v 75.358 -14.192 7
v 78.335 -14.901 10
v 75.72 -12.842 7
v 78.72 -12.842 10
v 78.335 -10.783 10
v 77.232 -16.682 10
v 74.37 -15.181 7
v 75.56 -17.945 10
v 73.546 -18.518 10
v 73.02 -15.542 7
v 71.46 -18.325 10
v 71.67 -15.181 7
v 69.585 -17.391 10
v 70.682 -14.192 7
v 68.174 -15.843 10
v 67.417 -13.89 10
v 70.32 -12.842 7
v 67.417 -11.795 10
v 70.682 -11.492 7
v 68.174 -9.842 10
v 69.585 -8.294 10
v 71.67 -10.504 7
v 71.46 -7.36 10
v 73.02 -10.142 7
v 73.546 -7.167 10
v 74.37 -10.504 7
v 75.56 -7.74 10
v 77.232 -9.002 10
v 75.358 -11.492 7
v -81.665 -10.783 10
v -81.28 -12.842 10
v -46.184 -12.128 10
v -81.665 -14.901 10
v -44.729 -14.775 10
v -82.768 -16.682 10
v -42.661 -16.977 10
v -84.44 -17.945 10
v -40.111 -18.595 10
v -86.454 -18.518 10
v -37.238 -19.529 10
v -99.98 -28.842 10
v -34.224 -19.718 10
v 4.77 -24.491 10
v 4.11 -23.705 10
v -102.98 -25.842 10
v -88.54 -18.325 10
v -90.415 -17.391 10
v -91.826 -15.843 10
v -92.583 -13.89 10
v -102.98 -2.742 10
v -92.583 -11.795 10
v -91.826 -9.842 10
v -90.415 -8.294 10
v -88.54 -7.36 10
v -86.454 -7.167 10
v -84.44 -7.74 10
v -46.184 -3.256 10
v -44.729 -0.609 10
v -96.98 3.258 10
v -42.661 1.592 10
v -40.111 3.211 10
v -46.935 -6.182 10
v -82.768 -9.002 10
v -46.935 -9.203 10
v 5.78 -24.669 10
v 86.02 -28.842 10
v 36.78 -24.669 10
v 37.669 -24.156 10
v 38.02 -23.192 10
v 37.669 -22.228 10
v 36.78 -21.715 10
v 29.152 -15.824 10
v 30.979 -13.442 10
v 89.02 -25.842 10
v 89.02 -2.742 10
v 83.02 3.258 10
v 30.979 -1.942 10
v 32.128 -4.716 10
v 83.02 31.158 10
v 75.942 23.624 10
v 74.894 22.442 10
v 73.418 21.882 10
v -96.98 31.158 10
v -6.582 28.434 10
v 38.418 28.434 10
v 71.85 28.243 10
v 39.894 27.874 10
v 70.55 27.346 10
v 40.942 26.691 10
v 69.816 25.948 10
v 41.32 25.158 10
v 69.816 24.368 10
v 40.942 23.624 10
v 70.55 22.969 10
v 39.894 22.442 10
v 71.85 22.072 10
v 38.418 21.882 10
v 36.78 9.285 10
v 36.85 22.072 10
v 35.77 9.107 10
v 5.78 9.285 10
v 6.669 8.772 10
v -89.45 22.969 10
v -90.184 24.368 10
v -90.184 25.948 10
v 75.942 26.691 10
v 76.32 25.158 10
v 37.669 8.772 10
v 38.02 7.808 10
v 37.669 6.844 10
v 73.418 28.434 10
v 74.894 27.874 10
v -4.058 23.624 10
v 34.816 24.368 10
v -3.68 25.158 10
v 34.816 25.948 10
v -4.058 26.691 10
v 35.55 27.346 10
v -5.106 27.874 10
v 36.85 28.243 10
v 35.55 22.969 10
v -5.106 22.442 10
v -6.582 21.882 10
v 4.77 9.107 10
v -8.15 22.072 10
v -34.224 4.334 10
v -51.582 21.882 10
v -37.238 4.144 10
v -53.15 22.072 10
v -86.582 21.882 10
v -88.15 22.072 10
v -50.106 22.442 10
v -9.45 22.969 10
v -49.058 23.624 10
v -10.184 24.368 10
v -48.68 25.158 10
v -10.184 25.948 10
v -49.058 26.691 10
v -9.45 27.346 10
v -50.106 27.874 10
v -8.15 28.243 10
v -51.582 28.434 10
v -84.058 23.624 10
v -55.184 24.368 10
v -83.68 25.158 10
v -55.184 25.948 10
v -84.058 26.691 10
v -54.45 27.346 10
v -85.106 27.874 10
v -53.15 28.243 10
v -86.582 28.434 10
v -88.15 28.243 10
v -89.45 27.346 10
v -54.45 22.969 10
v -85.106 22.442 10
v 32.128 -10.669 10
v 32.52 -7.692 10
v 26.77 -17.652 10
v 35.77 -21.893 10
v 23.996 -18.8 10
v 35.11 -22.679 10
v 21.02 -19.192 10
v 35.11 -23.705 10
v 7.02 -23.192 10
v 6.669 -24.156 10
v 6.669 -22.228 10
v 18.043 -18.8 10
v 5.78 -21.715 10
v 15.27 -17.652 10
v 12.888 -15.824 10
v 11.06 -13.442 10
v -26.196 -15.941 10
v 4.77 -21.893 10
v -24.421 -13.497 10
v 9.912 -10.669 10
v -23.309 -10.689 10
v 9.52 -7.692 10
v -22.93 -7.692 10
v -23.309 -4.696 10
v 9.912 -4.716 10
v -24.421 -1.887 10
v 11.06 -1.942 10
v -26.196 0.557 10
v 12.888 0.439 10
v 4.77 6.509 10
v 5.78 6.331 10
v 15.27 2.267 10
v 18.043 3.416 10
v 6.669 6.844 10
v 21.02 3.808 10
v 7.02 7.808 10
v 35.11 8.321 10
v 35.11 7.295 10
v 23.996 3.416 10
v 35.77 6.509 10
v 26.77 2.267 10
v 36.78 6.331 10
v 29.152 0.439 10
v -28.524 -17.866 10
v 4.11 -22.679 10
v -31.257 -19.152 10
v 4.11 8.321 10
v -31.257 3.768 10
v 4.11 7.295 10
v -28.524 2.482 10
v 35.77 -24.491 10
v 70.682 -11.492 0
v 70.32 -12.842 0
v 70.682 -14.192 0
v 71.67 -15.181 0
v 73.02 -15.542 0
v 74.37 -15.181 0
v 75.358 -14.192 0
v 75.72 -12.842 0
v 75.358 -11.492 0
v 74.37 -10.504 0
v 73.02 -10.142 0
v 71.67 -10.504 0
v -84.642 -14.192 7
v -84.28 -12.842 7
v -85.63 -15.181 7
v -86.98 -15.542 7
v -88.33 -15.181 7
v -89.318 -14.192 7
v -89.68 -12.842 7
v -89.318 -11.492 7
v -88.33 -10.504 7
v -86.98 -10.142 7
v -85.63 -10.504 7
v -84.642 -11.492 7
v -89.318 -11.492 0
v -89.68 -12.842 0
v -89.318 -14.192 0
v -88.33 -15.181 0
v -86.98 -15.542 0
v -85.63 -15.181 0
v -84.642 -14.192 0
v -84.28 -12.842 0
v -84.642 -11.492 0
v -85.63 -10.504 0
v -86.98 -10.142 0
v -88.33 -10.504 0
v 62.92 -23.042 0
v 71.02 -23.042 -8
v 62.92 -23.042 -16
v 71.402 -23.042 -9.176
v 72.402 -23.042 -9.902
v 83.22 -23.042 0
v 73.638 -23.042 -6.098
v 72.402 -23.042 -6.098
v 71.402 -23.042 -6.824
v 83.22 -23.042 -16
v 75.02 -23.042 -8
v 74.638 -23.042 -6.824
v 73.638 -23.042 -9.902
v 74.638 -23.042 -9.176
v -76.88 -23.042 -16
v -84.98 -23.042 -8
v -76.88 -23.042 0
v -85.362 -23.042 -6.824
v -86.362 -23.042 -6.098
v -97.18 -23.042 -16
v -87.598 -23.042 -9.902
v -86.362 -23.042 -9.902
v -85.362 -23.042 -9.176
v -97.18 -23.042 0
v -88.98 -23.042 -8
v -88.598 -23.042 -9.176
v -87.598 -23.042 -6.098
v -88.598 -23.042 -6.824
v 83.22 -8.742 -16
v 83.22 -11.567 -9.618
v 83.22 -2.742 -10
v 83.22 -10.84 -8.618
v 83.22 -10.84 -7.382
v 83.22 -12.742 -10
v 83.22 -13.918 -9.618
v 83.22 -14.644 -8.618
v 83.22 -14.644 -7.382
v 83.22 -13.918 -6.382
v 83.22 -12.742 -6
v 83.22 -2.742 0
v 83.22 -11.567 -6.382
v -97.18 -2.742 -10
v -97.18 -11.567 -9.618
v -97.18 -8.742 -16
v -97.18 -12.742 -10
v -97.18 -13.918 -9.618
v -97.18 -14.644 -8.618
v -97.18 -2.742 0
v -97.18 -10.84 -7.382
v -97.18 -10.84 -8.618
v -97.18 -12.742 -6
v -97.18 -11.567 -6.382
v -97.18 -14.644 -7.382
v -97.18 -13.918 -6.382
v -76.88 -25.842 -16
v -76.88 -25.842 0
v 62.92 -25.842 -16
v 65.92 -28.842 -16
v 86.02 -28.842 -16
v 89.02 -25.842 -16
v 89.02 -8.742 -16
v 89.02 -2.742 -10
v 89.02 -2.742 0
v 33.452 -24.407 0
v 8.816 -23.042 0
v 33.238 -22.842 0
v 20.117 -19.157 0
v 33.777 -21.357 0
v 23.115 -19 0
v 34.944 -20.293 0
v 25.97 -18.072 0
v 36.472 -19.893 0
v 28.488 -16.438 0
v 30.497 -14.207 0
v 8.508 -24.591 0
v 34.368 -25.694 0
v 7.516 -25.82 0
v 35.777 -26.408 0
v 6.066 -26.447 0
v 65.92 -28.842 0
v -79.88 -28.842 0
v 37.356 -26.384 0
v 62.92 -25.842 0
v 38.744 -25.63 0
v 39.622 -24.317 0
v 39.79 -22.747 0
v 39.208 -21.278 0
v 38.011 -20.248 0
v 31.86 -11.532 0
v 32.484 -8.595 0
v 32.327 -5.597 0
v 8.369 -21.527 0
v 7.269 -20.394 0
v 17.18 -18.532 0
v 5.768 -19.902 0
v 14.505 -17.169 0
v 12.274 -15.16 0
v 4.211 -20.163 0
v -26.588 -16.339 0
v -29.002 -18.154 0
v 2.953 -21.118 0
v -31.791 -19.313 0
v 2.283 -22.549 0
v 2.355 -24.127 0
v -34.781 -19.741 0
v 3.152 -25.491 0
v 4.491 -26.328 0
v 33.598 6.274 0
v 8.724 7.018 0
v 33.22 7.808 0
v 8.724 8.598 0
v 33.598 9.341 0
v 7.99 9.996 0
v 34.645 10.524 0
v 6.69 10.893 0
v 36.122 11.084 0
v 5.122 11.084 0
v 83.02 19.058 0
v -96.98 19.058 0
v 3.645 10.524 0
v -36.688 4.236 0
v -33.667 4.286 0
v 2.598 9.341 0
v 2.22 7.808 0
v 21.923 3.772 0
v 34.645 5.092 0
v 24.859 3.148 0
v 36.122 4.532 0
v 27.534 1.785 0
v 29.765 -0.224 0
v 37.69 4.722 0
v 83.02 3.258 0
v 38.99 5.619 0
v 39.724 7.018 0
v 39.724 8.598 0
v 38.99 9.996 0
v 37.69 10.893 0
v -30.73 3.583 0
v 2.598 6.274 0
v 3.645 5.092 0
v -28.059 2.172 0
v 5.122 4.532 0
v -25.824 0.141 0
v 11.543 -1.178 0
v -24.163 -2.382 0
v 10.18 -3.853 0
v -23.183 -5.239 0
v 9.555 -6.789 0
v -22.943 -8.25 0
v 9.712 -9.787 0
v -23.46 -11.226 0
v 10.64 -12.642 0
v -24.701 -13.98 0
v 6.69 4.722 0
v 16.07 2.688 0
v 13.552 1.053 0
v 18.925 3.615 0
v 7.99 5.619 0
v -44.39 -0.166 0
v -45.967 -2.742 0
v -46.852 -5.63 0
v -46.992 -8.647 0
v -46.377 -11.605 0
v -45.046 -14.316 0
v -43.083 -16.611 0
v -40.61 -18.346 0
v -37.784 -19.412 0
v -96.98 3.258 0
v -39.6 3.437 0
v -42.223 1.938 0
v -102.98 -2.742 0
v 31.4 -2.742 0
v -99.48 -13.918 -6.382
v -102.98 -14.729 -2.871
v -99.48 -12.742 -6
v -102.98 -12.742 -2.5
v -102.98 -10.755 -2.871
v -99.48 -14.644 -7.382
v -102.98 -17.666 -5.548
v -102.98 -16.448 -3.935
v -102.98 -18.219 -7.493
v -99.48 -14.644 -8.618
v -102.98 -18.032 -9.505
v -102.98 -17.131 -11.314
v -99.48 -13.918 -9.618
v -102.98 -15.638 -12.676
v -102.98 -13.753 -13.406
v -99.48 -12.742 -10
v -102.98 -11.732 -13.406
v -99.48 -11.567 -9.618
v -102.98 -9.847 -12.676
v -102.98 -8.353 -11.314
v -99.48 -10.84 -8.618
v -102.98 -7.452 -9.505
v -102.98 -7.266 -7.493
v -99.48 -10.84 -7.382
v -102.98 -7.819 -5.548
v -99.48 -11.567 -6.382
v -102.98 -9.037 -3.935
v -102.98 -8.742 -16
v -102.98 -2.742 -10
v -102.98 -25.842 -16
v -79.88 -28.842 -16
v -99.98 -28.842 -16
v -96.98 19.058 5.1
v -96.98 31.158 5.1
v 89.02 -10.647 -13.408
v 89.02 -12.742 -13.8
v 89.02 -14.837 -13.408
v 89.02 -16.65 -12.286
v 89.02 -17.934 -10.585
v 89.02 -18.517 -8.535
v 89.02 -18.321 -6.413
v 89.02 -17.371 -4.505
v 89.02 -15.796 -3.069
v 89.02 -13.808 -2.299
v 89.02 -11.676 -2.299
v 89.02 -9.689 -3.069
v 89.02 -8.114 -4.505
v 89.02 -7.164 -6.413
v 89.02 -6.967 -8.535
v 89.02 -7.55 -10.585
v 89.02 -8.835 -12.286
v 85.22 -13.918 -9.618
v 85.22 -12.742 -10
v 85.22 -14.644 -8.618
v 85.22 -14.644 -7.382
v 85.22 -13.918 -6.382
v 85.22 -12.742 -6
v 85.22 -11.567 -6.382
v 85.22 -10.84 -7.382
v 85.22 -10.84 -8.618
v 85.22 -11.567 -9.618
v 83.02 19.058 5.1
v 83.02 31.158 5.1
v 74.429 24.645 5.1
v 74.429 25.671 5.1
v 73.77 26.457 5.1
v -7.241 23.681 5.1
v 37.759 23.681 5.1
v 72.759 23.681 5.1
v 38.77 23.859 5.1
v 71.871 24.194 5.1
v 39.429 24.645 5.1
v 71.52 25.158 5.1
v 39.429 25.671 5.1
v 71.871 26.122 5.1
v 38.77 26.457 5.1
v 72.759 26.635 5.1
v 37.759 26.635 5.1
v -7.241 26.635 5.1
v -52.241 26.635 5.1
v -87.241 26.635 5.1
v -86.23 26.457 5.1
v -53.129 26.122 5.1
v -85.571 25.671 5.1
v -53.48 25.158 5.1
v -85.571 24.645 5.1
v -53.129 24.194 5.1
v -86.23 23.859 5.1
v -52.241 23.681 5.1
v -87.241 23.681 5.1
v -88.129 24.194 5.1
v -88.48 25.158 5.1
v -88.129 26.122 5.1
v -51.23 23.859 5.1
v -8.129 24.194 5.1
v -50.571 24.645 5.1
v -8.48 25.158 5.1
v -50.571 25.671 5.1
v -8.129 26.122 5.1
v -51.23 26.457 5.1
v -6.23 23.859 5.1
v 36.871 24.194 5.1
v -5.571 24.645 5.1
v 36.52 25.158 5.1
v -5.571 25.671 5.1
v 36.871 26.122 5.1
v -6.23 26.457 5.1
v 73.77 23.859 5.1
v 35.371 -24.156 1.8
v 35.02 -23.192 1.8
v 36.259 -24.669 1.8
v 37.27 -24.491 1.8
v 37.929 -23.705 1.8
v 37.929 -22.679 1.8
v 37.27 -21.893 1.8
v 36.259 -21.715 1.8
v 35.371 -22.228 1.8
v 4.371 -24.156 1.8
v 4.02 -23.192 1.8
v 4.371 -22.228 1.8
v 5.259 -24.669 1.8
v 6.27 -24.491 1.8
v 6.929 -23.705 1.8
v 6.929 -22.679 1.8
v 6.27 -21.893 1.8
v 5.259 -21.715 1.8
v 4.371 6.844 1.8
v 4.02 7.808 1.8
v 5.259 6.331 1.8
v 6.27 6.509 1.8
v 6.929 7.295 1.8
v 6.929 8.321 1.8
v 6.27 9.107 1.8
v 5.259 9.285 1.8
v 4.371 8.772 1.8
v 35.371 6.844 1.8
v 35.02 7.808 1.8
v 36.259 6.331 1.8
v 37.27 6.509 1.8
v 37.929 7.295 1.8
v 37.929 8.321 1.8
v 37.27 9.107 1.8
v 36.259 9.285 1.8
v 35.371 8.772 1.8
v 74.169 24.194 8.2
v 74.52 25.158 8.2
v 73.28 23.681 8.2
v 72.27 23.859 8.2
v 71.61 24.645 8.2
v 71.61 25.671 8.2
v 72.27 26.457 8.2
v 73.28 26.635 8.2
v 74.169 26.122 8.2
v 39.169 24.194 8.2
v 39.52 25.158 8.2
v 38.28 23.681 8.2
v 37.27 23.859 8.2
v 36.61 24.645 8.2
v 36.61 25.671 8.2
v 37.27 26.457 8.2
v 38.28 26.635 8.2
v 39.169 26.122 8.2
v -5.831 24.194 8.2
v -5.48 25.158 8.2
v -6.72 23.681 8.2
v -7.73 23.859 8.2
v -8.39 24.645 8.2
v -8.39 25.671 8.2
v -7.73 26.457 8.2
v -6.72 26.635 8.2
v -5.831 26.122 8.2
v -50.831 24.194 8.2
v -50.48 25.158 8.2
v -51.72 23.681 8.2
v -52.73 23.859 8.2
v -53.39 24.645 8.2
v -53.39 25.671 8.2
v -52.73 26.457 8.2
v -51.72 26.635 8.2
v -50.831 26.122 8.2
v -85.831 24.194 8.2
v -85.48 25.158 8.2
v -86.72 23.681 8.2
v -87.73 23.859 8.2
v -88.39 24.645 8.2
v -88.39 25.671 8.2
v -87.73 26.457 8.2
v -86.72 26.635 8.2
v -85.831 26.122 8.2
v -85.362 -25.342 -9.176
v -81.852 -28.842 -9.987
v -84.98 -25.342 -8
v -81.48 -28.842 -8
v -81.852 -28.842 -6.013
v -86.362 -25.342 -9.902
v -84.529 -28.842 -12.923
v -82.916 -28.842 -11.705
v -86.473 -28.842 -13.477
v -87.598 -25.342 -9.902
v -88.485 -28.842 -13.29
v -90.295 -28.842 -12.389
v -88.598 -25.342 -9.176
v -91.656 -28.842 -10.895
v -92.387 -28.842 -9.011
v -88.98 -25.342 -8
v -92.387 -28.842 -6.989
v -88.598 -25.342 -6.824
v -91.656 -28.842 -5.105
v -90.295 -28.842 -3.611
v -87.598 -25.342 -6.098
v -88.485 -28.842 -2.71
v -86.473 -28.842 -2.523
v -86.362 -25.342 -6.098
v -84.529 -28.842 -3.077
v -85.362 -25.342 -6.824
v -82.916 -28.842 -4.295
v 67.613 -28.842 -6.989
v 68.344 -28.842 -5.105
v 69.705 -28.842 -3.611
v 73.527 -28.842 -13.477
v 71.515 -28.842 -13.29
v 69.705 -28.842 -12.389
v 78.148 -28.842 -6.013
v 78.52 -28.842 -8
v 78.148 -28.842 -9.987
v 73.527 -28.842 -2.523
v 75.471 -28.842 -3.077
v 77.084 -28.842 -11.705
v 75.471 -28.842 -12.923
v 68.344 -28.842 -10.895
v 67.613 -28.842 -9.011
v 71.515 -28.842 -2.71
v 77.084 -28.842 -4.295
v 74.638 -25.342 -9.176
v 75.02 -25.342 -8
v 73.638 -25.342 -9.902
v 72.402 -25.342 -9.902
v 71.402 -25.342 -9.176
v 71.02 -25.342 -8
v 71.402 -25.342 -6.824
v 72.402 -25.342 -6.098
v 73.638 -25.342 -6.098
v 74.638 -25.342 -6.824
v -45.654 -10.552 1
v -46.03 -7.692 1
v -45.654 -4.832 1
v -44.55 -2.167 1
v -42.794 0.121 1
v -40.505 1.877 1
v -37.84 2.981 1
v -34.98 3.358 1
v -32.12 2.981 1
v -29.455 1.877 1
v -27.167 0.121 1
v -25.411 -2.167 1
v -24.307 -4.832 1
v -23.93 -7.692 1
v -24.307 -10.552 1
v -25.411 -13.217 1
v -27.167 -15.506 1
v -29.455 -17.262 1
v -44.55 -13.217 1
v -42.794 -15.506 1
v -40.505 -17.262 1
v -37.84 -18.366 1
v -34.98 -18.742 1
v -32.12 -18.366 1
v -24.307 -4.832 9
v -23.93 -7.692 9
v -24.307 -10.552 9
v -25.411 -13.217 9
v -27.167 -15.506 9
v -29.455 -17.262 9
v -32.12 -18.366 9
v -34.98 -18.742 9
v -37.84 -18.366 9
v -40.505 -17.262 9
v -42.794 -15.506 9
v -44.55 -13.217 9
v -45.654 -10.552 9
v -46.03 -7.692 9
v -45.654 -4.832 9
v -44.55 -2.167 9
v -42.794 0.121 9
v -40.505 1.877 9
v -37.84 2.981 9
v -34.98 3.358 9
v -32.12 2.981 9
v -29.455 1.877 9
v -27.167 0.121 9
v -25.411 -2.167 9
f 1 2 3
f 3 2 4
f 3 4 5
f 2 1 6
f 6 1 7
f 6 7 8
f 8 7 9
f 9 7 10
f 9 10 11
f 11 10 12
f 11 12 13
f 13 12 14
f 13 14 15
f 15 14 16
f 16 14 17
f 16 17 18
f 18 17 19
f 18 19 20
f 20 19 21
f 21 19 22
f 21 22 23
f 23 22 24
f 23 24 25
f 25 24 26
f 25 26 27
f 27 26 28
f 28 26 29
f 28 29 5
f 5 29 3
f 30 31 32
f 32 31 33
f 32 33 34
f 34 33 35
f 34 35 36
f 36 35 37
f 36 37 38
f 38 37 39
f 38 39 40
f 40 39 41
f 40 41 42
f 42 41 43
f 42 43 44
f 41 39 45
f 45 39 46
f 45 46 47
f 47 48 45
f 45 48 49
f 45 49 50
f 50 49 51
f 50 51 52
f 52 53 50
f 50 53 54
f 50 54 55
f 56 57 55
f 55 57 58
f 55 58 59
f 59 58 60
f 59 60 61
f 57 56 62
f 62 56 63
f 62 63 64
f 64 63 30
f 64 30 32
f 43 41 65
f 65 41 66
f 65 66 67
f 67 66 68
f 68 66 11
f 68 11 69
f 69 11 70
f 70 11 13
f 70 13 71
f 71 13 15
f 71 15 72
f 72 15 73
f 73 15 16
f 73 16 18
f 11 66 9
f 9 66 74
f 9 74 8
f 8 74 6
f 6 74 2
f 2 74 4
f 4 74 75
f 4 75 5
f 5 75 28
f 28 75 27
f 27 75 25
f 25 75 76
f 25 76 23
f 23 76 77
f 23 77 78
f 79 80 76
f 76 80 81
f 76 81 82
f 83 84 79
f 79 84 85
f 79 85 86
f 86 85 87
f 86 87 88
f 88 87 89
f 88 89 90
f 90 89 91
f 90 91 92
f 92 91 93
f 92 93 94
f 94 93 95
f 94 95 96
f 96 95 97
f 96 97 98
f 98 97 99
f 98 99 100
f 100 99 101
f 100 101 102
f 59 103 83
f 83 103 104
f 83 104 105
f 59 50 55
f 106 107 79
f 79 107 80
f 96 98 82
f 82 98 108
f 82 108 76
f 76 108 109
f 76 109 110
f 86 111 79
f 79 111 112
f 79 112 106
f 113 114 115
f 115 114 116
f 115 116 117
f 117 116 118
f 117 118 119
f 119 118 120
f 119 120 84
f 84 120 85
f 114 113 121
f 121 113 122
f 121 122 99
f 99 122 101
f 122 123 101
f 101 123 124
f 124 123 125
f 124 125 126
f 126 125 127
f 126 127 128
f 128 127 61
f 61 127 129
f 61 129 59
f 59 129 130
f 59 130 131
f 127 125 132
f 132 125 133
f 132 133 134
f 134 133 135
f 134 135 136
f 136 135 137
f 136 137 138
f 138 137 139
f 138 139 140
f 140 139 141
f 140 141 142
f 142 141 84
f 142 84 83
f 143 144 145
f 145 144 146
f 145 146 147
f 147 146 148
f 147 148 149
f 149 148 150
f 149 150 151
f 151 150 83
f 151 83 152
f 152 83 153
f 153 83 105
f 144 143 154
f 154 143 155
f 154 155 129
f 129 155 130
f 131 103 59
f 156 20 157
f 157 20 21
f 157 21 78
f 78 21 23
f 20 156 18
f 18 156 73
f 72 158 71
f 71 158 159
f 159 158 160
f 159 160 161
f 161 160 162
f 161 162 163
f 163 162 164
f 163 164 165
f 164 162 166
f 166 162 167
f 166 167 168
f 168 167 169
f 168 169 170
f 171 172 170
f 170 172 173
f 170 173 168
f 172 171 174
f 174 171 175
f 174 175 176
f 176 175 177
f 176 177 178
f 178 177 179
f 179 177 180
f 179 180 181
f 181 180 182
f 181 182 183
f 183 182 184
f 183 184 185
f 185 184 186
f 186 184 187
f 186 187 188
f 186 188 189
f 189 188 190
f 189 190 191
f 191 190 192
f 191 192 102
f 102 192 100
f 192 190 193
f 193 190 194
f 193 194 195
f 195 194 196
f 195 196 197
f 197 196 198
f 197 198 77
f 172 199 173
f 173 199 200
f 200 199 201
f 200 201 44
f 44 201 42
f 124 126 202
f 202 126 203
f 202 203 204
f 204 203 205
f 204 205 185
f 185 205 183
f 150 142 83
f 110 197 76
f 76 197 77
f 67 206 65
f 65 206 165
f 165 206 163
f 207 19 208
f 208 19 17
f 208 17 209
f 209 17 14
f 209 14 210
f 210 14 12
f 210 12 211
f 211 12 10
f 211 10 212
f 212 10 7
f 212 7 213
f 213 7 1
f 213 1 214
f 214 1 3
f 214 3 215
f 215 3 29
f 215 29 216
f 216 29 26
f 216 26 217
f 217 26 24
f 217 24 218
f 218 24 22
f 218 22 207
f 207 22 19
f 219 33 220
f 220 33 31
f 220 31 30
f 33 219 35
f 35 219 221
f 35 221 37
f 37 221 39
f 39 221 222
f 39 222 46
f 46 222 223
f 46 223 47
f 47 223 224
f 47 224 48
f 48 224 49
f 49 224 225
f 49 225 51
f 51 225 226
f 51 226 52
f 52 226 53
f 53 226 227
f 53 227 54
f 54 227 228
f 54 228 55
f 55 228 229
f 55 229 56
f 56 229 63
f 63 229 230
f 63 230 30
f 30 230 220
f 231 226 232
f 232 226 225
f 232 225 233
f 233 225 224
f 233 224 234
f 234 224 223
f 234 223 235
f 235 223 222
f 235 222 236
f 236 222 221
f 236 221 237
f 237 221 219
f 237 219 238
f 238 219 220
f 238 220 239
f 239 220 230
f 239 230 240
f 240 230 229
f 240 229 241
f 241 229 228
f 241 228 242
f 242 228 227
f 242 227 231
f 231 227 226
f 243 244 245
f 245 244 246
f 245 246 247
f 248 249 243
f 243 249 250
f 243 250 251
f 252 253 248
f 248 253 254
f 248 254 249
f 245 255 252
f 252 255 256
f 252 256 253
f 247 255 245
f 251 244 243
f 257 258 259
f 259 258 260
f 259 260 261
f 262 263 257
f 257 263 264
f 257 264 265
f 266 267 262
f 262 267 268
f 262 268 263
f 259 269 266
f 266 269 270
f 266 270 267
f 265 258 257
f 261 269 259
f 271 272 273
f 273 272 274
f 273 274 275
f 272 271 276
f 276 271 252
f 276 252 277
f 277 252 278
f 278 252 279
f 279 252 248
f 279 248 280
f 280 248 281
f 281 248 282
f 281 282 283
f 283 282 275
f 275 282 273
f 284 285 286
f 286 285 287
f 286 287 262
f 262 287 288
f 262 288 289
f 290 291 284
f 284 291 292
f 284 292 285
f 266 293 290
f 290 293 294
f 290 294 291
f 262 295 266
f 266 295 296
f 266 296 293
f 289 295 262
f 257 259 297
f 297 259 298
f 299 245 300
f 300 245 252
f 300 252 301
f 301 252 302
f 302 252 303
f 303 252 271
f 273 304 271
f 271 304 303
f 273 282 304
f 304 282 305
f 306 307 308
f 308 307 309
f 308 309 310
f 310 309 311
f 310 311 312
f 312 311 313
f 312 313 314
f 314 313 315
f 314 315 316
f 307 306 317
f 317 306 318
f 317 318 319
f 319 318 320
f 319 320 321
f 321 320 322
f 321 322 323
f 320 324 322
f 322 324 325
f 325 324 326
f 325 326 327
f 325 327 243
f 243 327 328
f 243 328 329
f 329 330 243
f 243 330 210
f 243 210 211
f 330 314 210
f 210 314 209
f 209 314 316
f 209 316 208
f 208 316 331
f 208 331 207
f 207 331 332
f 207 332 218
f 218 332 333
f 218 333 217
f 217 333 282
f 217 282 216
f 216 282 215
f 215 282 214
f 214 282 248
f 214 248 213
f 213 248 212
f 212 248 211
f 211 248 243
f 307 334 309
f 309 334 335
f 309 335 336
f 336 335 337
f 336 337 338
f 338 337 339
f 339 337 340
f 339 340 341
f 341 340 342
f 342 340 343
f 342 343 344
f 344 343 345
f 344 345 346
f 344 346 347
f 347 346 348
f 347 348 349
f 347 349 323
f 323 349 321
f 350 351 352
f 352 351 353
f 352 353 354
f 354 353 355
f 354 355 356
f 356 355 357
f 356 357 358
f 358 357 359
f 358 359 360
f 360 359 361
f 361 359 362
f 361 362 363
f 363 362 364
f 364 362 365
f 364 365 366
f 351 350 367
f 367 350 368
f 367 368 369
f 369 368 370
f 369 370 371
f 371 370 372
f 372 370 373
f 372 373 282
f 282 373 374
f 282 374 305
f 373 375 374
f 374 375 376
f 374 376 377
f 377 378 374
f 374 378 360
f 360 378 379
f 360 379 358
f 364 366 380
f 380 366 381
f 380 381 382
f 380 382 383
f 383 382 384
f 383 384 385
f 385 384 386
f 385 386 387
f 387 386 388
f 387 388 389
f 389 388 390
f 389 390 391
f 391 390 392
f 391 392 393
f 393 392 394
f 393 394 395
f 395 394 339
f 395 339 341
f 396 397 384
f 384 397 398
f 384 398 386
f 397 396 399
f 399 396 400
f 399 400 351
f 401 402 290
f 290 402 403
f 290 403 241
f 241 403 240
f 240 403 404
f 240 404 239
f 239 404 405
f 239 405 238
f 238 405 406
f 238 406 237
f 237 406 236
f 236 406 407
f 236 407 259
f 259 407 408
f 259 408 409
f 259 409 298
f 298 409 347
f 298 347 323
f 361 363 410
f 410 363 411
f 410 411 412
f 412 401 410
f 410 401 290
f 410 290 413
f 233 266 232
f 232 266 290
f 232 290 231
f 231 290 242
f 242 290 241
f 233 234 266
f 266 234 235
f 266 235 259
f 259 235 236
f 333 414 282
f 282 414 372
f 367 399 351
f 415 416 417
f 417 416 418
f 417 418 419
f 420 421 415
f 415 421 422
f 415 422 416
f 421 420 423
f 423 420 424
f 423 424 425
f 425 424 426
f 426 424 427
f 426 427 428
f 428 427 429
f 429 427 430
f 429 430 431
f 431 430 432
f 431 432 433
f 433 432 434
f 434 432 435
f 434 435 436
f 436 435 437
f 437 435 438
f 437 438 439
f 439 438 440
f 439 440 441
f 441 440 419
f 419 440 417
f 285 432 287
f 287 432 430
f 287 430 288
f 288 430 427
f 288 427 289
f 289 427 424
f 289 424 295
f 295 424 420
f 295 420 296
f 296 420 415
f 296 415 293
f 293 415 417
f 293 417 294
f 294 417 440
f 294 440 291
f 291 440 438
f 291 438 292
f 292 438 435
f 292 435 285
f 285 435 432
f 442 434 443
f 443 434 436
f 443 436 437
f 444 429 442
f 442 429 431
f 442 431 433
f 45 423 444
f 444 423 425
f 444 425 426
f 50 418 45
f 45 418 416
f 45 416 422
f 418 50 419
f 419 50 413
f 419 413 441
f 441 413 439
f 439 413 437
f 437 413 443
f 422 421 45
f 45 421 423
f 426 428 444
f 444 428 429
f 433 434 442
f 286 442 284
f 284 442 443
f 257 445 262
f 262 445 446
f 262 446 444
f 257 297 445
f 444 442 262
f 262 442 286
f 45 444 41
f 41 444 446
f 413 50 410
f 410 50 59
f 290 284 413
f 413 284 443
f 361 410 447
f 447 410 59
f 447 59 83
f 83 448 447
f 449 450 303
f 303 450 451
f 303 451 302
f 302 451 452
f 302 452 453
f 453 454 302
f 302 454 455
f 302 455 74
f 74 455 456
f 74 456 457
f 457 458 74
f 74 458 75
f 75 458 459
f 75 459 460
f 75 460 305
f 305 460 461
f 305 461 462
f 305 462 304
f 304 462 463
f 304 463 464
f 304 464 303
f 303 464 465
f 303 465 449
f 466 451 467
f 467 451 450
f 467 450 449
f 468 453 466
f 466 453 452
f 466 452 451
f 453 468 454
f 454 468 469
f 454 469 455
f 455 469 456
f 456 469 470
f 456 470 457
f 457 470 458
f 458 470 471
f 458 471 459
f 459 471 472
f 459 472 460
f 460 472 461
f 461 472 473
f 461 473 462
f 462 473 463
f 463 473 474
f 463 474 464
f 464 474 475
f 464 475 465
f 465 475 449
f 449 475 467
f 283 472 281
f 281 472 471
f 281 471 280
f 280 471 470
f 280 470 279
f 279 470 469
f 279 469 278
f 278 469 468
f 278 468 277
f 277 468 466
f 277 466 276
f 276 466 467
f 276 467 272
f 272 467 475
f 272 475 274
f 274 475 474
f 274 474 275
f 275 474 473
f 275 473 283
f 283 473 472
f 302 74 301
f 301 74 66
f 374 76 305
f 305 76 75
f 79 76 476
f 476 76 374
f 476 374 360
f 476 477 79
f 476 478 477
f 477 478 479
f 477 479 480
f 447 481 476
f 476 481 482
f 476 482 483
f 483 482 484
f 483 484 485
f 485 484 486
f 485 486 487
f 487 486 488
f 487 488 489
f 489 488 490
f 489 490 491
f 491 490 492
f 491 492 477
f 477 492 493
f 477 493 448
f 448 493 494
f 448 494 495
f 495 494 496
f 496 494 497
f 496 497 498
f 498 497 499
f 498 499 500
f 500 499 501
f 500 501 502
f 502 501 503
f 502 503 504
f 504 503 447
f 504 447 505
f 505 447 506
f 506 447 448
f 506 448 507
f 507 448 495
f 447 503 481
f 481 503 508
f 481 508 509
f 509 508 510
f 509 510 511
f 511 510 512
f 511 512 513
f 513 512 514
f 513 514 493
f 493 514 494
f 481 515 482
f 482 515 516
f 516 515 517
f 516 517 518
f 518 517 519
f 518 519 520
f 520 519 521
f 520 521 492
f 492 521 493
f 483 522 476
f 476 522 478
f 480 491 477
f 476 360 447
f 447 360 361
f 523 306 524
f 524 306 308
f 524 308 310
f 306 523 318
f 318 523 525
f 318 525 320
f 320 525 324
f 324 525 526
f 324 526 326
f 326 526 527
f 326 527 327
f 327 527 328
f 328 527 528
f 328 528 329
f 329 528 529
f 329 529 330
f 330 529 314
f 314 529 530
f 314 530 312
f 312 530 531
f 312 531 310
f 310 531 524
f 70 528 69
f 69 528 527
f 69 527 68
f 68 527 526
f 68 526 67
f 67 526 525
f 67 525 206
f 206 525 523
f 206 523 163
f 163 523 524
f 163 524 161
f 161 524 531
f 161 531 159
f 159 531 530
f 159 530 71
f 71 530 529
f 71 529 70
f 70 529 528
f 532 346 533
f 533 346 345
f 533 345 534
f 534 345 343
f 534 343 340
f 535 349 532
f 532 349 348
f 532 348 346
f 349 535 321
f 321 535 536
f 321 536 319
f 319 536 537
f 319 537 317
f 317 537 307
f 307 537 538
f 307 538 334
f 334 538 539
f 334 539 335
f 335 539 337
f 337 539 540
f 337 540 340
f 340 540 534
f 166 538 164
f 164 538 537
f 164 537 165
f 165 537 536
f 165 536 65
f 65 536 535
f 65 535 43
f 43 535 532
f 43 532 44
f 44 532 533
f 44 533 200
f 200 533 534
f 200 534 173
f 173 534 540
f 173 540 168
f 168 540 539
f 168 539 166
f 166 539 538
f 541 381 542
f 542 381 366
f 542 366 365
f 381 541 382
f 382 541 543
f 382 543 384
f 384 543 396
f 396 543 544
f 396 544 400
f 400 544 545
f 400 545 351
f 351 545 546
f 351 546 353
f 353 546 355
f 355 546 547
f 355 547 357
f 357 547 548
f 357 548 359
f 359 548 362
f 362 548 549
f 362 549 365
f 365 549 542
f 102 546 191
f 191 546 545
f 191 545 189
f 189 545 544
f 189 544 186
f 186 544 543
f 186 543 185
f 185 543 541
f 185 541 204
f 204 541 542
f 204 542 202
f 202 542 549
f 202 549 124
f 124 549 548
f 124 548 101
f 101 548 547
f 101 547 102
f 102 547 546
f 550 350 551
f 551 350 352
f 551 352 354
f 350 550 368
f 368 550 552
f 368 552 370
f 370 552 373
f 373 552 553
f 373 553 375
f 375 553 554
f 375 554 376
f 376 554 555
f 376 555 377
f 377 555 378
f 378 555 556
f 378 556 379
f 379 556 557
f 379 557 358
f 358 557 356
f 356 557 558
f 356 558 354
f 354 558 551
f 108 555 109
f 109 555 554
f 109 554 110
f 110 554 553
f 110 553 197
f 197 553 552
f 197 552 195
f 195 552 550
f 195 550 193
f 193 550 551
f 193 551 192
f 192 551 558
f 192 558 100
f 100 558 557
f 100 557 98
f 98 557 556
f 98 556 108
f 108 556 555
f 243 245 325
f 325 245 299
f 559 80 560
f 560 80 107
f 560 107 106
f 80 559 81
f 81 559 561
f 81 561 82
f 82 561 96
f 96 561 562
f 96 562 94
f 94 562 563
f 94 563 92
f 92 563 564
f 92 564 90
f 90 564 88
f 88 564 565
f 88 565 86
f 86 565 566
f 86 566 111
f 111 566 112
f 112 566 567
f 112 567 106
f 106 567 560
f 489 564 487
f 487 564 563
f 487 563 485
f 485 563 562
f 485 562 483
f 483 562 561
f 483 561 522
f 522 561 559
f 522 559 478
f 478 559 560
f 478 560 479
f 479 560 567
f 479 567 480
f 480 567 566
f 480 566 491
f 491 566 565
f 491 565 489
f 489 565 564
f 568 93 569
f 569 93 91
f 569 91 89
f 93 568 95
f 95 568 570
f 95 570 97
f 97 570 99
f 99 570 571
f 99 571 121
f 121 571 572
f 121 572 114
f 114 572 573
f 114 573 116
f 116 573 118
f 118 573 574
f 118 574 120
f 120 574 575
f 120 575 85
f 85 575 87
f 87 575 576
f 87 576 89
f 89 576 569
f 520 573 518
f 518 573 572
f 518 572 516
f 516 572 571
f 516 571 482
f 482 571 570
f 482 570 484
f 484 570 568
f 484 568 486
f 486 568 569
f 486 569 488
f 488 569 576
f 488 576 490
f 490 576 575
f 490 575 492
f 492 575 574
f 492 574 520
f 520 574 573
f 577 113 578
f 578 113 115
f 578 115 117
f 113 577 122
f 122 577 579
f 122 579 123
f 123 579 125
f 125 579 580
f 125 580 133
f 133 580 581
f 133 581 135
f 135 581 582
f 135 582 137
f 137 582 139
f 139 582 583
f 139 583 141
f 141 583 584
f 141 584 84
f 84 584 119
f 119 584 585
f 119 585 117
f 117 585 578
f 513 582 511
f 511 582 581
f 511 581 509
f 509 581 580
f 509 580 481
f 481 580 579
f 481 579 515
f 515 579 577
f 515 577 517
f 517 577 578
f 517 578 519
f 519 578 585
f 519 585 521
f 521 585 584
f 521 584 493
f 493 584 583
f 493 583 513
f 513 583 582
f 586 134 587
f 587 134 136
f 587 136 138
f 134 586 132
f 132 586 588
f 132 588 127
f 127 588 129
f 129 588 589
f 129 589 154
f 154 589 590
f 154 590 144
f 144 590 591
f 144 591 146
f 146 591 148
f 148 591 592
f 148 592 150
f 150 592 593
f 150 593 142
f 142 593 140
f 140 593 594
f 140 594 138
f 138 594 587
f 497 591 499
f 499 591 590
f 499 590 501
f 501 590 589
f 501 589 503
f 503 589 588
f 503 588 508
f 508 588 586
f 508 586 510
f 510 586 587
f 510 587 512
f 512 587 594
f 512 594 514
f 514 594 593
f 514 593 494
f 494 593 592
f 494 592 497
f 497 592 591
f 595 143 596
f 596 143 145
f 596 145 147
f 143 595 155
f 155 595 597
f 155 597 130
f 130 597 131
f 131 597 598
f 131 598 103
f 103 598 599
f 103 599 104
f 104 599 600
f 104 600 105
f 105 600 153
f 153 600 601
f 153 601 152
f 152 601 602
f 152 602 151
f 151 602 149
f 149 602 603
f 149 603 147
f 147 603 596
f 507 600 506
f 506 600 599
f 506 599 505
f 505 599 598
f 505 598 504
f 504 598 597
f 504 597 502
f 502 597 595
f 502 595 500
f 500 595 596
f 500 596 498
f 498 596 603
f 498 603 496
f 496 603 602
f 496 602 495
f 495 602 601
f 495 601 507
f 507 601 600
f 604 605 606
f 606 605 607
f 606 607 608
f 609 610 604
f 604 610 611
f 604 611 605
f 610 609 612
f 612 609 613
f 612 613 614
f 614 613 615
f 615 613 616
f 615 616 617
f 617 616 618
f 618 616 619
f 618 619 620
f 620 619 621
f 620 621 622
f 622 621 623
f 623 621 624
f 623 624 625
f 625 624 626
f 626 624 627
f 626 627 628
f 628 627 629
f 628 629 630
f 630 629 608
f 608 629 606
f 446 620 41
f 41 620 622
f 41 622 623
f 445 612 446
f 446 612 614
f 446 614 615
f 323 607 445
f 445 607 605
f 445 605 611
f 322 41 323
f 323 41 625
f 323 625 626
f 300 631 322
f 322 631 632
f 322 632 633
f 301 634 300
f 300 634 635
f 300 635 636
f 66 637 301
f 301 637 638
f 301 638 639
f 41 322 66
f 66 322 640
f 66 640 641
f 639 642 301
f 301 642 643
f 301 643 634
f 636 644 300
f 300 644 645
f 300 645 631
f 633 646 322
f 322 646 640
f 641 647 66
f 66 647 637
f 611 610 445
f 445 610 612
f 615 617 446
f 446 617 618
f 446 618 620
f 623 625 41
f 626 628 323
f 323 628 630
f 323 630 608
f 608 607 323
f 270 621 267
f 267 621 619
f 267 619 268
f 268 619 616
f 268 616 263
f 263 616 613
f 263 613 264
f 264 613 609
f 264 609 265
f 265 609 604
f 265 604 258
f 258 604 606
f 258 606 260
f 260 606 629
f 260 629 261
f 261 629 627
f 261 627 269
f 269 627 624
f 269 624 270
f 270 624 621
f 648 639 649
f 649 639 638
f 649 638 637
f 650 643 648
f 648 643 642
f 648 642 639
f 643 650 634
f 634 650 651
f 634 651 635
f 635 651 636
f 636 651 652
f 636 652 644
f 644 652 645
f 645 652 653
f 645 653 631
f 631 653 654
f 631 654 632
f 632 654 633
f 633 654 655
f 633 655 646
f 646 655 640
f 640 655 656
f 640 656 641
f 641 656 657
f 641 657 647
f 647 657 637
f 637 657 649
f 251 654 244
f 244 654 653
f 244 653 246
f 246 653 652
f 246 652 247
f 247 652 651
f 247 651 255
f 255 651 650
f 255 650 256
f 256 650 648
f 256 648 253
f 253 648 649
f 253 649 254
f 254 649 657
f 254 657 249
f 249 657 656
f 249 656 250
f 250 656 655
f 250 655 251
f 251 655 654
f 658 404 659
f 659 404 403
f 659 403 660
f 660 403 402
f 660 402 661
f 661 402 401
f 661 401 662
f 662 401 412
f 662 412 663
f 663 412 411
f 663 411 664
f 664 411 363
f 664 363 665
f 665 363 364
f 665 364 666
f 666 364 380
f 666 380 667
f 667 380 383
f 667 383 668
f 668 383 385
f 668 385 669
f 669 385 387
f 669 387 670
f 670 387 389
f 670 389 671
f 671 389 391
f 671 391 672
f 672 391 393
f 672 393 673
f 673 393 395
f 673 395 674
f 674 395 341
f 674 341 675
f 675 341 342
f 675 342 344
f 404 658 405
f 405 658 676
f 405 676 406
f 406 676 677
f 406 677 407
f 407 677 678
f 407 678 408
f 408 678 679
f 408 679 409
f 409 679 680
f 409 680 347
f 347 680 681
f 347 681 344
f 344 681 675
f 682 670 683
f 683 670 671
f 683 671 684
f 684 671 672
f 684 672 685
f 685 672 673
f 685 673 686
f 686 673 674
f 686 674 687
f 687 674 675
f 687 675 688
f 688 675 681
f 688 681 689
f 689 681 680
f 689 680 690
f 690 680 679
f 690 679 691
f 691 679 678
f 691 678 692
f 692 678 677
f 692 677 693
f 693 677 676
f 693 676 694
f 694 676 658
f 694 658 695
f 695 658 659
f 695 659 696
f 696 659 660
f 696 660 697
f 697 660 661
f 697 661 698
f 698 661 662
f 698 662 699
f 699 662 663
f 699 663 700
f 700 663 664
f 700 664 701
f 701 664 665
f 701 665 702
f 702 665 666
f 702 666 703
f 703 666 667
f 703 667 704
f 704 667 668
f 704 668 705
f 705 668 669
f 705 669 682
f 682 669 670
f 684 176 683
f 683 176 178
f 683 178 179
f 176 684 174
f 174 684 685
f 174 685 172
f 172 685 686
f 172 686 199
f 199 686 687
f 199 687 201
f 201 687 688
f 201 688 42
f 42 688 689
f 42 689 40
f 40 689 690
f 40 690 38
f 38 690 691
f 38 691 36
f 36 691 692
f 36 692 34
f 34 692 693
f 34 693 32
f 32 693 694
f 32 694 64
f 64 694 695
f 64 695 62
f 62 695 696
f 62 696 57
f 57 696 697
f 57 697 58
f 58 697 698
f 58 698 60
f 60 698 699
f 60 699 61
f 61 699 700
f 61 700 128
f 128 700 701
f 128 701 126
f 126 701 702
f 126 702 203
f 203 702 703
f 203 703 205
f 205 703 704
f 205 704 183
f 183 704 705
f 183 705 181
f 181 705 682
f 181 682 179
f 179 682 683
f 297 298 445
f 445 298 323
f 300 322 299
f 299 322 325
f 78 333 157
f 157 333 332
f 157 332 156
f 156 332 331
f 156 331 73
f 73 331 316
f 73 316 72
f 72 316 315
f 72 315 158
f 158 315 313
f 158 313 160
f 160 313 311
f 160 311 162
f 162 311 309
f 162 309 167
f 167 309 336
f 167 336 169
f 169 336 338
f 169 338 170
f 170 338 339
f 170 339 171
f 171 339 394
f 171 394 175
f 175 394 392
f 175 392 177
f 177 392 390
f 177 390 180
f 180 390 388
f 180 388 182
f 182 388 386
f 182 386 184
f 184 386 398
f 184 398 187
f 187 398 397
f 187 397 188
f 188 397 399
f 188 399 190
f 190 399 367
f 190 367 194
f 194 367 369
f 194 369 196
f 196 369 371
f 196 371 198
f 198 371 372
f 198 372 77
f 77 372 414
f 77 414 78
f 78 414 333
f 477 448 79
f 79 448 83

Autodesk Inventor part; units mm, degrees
ref_plane "YZ Plane" through (0, 0, 0) normal (1, 0, 0) x (0, 1, 0)
ref_plane "XZ Plane" through (0, 0, 0) normal (0, 1, 0) x (-1, 0, 0)
ref_plane "XY Plane" through (0, 0, 0) normal (0, 0, 1) x (1, 0, 0)
sketch "Sketch1" plane through (0, 0, 0) normal (0, 0, 1) x (1, 0, 0)
  line L0 (-96.9802, 31.1578) -> (83.0198, 31.1578)
  line L1 (83.0198, 31.1578) -> (83.0198, -28.8422)
  line L2 (83.0198, -28.8422) -> (-96.9802, -28.8422)
  line L3 (-96.9802, -28.8422) -> (-96.9802, 31.1578)
  point P0 (0, 0)
  dimension "d0" = 180
  dimension "d1" = 60
extrude "Extrusion1" add sketch "Sketch1" along normal blind 10
sketch "Sketch4" plane through (0, 0, 0) normal (0, 0, -1) x (-1, 0, 0)
  circle A0 centre (-21.0198, -7.6922) radius 11.5
  line L0 (96.9802, -28.8422) -> (-83.0198, -28.8422) projected
  line L1 (-83.0198, -28.8422) -> (-83.0198, 31.1578) projected
  point P0 (0, 0)
  dimension "d16" = 23
  dimension "d17" = 21.15
  dimension "d18" = 62
extrude "Extrusion4" cut sketch "Sketch4" against normal through all
sketch "Sketch5" plane through (0, 0, 0) normal (0, 0, -1) x (-1, 0, 0)
  line L0 (96.9802, -28.8422) -> (-83.0198, -28.8422) projected
  line L1 (96.9802, 31.1578) -> (96.9802, -28.8422) projected
  line L2 (-83.0198, -28.8422) -> (96.9802, -28.8422)
  line L3 (96.9802, -28.8422) -> (96.9802, -22.8422)
  line L4 (96.9802, -22.8422) -> (-83.0198, -22.8422)
  line L5 (-83.0198, -22.8422) -> (-83.0198, -28.8422)
  point P0 (0, 0)
  dimension "d21" = 6
extrude "Extrusion5" add sketch "Sketch5" along normal blind 16
sketch "Sketch6" plane through (-96.9802, -22.8422, 0) normal (0, 1, 0) x (1, 0, 0)
  line L0 (180, 16) -> (0, 16) projected
  line L1 (180, 0) -> (0, 0) projected
  line L2 (165.9, 16) -> (159.9, 16)
  line L3 (159.9, 16) -> (159.9, 0)
  line L4 (159.9, 0) -> (165.9, 0)
  line L5 (165.9, 0) -> (165.9, 16)
  line L6 (14.1, 16) -> (20.1, 16)
  line L7 (20.1, 16) -> (20.1, 0)
  line L8 (20.1, 0) -> (14.1, 0)
  line L9 (14.1, 0) -> (14.1, 16)
  line L10 (0, 0) -> (0, 16) projected
  line L11 (180, 0) -> (180, 16) projected
  point P0 (96.9802, 0)
  point P1 (14.1, 16)
  point P2 (14.1, 0)
  point P3 (20.1, 16)
  point P4 (165.9, 0)
  dimension "d24" = 14.1
  dimension "d25" = 6
  dimension "d26" = 14.1
  dimension "d27" = 6
extrude "Extrusion6" add sketch "Sketch6" along normal blind 20 contours L5 L1 L3 L0 | L7 L1 L9 L0
sketch "Sketch7" plane through (-76.8802, -22.8422, 0) normal (0, 1, 0) x (1, 0, 0)
  line L0 (0, 16) -> (139.8, 16) projected
  line L1 (0, 16) -> (0, 0) projected
  line L2 (139.8, 16) -> (0, 16)
  line L3 (0, 16) -> (0, 0)
  line L4 (0, 0) -> (139.8, 0)
  line L5 (139.8, 0) -> (139.8, 16)
  point P0 (76.8802, 0)
extrude "Extrusion7" cut sketch "Sketch7" against normal through all
chamfer "Chamfer1" distance 3 angle 45 2 edges at (62.9198, -28.8422, -8) (-76.8802, -28.8422, -8)
sketch "Sketch8" plane through (0, 0, 10) normal (0, 0, 1) x (1, 0, 0)
  circle A0 centre (-34.9802, -7.6922) radius 11.05
  line L0 (-96.9802, -28.8422) -> (83.0198, -28.8422) projected
  line L1 (-96.9802, 31.1578) -> (-96.9802, -28.8422) projected
  point P0 (0, 0)
  dimension "d35" = 22.1
  dimension "d36" = 21.15
  dimension "d37" = 62
extrude "Extrusion8" cut sketch "Sketch8" against normal through all
chamfer "Chamfer2" distance 1 angle 45 2 edges at (-46.0302, -7.6922, 10) (-46.0302, -7.6922, 0)
sketch "Sketch9" plane through (-96.9802, -28.8422, 10) normal (0, -1, 0) x (1, 0, 0)
  circle A0 centre (10, -18) radius 2
  circle A1 centre (170, -18) radius 2
  line L0 (180, -26) -> (180, 0) projected
  line L1 (0, 0) -> (0, -26) projected
  line L2 (17.1, -26) -> (0, -26) projected
  line L3 (180, -26) -> (162.9, -26) projected
  point P0 (96.9802, -10)
  dimension "d43" = 4
  dimension "d44" = 10
  dimension "d45" = 4
  dimension "d46" = 10
  dimension "d47" = 8
  dimension "d48" = 8
extrude "Extrusion9" cut sketch "Sketch9" against normal through all
chamfer "Chamfer3" distance 3.5 angle 45 2 edges at (71.0198, -28.8422, -8) (-88.9802, -28.8422, -8)
sketch "Sketch10" plane through (0, 0, 10) normal (0, 0, 1) x (1, 0, 0)
  circle A0 centre (-86.9802, 25.1578) radius 1.5
  circle A1 centre (-51.9802, 25.1578) radius 1.5
  circle A2 centre (-6.9802, 25.1578) radius 1.5
  circle A3 centre (38.0198, 25.1578) radius 1.5
  circle A4 centre (73.0198, 25.1578) radius 1.5
  line L0 (83.0198, 31.1578) -> (-96.9802, 31.1578) projected
  line L1 (83.0198, -28.8422) -> (83.0198, 31.1578) projected
  line L2 (-96.9802, 31.1578) -> (-96.9802, -28.8422) projected
  point P0 (0, 0)
  dimension "d54" = 3
  dimension "d55" = 3
  dimension "d56" = 3
  dimension "d57" = 3
  dimension "d58" = 3
  dimension "d59" = 6
  dimension "d60" = 6
  dimension "d61" = 6
  dimension "d62" = 6
  dimension "d63" = 6
  dimension "d64" = 10
  dimension "d65" = 10
  dimension "d66" = 35
  dimension "d67" = 35
  dimension "d68" = 90
extrude "Extrusion10" cut sketch "Sketch10" against normal through all
chamfer "Chamfer4" distance 1.8 angle 45 5 edges at (-88.4802, 25.1578, 10) (-53.4802, 25.1578, 10) (-8.4802, 25.1578, 10) (36.5198, 25.1578, 10) (71.5198, 25.1578, 10)
sketch "Sketch11" plane through (-96.9802, -22.8422, -16) normal (-1, 0, 0) x (0, 0, 1)
  circle A0 centre (8, 10) radius 2
  line L0 (16, 0) -> (0, 0) projected
  line L1 (0, 0) -> (0, 20) projected
  point P0 (16, 22.8422)
  dimension "d77" = 4
  dimension "d78" = 10
  dimension "d79" = 8
extrude "Extrusion11" cut sketch "Sketch11" against normal through all
chamfer "Chamfer6" distance 3 angle 45 2 edges at (62.9198, -12.8422, -10) (-76.8802, -12.8422, -10)
sketch "Sketch12" plane through (0, 0, 0) normal (0, 0, -1) x (-1, 0, 0)
  circle A0 centre (-36.5198, 7.8078) radius 1.5
  circle A1 centre (-5.5198, 7.8078) radius 1.5
  circle A2 centre (-5.5198, -23.1922) radius 1.5
  circle A3 centre (-36.5198, -23.1922) radius 1.5
  circle A4 centre (-21.0198, -7.6922) radius 11.5 projected
  point P0 (0, 0)
  dimension "d85" = 3
  dimension "d86" = 3
  dimension "d87" = 3
  dimension "d88" = 3
  dimension "d89" = 15.5
  dimension "d90" = 15.5
  dimension "d91" = 15.5
  dimension "d93" = 15.5
  dimension "d94" = 15.5
  dimension "d95" = 15.5
  dimension "d96" = 31
  dimension "d97" = 15.5
extrude "Extrusion12" cut sketch "Sketch12" against normal through all contours A0 | A1 | A2 | A3
chamfer "Chamfer7" distance 1.8 angle 45 4 edges at (38.0198, 7.8078, 0) (7.0198, 7.8078, 0) (7.0198, -23.1922, 0) (38.0198, -23.1922, 0)
sketch "Sketch13" plane through (-96.9802, -22.8422, -16) normal (-1, 0, 0) x (0, 0, 1)
  line L0 (16, 0) -> (16, 54) projected
  line L1 (16, 41.9) -> (21.1, 41.9)
  line L2 (21.1, 41.9) -> (21.1, 54)
  line L3 (21.1, 54) -> (16, 54)
  line L4 (16, 54) -> (16, 41.9)
  line L5 (26, 54) -> (16, 54) projected
  point P0 (16, 22.8422)
  point P1 (16, 52)
  point P2 (16, 52)
  dimension "d103" = 12.1
  dimension "d104" = 12.1
  dimension "d105" = 5.1
extrude "Extrusion13" cut sketch "Sketch13" against normal through all
sketch "Sketch14" plane through (68.9198, -22.8422, 0) normal (1, 0, 0) x (0, 0, -1)
  line L0 (16, 20) -> (0, 20) projected
  line L1 (0, 0) -> (16, 0) projected
  line L2 (0, 20) -> (16, 20)
  line L3 (16, 20) -> (16, 0)
  line L4 (16, 0) -> (0, 0)
  line L5 (0, 0) -> (0, 20)
  point P0 (0, 22.8422)
  point P1 (16, 20)
  point P2 (0, 0)
extrude "Extrusion14" cut sketch "Sketch14" against normal through all
sketch "Sketch15" plane through (83.0198, -28.8422, 10) normal (1, 0, 0) x (0, 0, -1)
  line L0 (0, 60) -> (0, 0) projected
  line L1 (0, 0) -> (26, 0)
  line L2 (26, 0) -> (26, 26.1)
  line L3 (26, 26.1) -> (0, 26.1)
  line L4 (0, 26.1) -> (0, 0)
  line L5 (10, 6) -> (26, 6) projected
  point P0 (10, 28.8422)
  point P1 (0, 26.1)
  dimension "d110" = 20.1
  dimension "d111" = 26
extrude "Extrusion15" add sketch "Sketch15" along normal blind 6
chamfer "Chamfer8" distance 6 angle 45 1 edges at (83.0198, -2.7422, 5)
chamfer "Chamfer9" distance 3 angle 45 1 edges at (89.0198, -28.8422, -3)
sketch "Sketch16" plane through (89.0198, -28.8422, 10) normal (1, 0, 0) x (0, 0, -1)
  circle A0 centre (18, 16.1) radius 2
  line L0 (26, 26.1) -> (10, 26.1) projected
  line L1 (26, 0) -> (26, 26.1) projected
  point P0 (10, 28.8422)
  point P1 (23, 26.1)
  dimension "d123" = 4
  dimension "d124" = 10
  dimension "d125" = 8
extrude "Extrusion16" cut sketch "Sketch16" against normal through all
chamfer "Chamfer11" distance 3.8 angle 45 1 edges at (89.0198, -12.7422, -6)
chamfer "Chamfer12" distance 6 angle 45 1 edges at (86.0198, -2.7422, -16)
sketch "Sketch17" plane through (-96.9802, -28.8422, 10) normal (-1, 0, 0) x (0, 0, 1)
  line L0 (0, 0) -> (-26, 0) projected
  line L1 (0, 0) -> (-26, 0)
  line L2 (-26, 0) -> (-26, 26.1)
  line L3 (-26, 26.1) -> (0, 26.1)
  line L4 (0, 26.1) -> (0, 0)
  point P0 (-10, 28.8422)
  dimension "d134" = 26
  dimension "d135" = 26.1
extrude "Extrusion17" add sketch "Sketch17" along normal blind 6
chamfer "Chamfer13" distance 6 angle 45 1 edges at (-96.9802, -2.7422, 5)
chamfer "Chamfer14" distance 3 angle 45 1 edges at (-102.9802, -28.8422, -3)
chamfer "Chamfer15" distance 6 angle 45 1 edges at (-99.9802, -2.7422, -16)
sketch "Sketch18" plane through (-102.9802, -28.8422, 10) normal (-1, 0, 0) x (0, 0, 1)
  circle A0 centre (-18, 16.1) radius 2 projected
  circle A1 centre (-18, 16.1) radius 2
  point P0 (-10, 28.8422)
extrude "Extrusion18" cut sketch "Sketch18" against normal through all
chamfer "Chamfer16" distance 3.5 angle 45 1 edges at (-102.9802, -12.7422, -10)
sketch "Sketch19" plane through (0, 0, 10) normal (0, 0, 1) x (1, 0, 0)
  circle A0 centre (-86.9802, -12.8422) radius 2.7
  circle A1 centre (73.0198, -12.8422) radius 2.7
  line L0 (-96.9802, 31.1578) -> (-96.9802, 3.2578) projected
  line L1 (86.0198, -28.8422) -> (-99.9802, -28.8422) projected
  line L2 (83.0198, 3.2578) -> (83.0198, 31.1578) projected
  point P0 (0, 0)
  dimension "d152" = 5.4
  dimension "d153" = 5.4
  dimension "d154" = 10
  dimension "d155" = 16
  dimension "d156" = 10
  dimension "d157" = 16
extrude "Extrusion19" cut sketch "Sketch19" against normal through all
sketch "Sketch20" plane through (0, 0, -16) normal (0, 0, -1) x (-1, 0, 0)
  line L0 (102.9802, -2.7422) -> (96.9802, -2.7422) projected
  line L1 (-83.2198, -23.0422) -> (97.1802, -23.0422)
  line L2 (97.1802, -23.0422) -> (97.1802, -2.7422)
  line L3 (97.1802, -2.7422) -> (-83.2198, -2.7422)
  line L4 (-83.2198, -2.7422) -> (-83.2198, -23.0422)
  line L5 (96.9802, -8.7422) -> (96.9802, -22.8422) projected
  line L6 (96.9802, -22.8422) -> (76.8802, -22.8422) projected
  line L7 (-83.0198, -22.8422) -> (-83.0198, -8.7422) projected
  point P0 (0, 0)
  dimension "d164" = 0.2
  dimension "d165" = 0.2
  dimension "d166" = 0.2
extrude "Extrusion20" cut sketch "Sketch20" against normal up to surface (16 mm away)
chamfer "Chamfer18" distance 3 angle 45 2 edges at (-89.6802, -12.8422, 10) (70.3198, -12.8422, 10)
properties part number "wall" material "ABS Plastic"
